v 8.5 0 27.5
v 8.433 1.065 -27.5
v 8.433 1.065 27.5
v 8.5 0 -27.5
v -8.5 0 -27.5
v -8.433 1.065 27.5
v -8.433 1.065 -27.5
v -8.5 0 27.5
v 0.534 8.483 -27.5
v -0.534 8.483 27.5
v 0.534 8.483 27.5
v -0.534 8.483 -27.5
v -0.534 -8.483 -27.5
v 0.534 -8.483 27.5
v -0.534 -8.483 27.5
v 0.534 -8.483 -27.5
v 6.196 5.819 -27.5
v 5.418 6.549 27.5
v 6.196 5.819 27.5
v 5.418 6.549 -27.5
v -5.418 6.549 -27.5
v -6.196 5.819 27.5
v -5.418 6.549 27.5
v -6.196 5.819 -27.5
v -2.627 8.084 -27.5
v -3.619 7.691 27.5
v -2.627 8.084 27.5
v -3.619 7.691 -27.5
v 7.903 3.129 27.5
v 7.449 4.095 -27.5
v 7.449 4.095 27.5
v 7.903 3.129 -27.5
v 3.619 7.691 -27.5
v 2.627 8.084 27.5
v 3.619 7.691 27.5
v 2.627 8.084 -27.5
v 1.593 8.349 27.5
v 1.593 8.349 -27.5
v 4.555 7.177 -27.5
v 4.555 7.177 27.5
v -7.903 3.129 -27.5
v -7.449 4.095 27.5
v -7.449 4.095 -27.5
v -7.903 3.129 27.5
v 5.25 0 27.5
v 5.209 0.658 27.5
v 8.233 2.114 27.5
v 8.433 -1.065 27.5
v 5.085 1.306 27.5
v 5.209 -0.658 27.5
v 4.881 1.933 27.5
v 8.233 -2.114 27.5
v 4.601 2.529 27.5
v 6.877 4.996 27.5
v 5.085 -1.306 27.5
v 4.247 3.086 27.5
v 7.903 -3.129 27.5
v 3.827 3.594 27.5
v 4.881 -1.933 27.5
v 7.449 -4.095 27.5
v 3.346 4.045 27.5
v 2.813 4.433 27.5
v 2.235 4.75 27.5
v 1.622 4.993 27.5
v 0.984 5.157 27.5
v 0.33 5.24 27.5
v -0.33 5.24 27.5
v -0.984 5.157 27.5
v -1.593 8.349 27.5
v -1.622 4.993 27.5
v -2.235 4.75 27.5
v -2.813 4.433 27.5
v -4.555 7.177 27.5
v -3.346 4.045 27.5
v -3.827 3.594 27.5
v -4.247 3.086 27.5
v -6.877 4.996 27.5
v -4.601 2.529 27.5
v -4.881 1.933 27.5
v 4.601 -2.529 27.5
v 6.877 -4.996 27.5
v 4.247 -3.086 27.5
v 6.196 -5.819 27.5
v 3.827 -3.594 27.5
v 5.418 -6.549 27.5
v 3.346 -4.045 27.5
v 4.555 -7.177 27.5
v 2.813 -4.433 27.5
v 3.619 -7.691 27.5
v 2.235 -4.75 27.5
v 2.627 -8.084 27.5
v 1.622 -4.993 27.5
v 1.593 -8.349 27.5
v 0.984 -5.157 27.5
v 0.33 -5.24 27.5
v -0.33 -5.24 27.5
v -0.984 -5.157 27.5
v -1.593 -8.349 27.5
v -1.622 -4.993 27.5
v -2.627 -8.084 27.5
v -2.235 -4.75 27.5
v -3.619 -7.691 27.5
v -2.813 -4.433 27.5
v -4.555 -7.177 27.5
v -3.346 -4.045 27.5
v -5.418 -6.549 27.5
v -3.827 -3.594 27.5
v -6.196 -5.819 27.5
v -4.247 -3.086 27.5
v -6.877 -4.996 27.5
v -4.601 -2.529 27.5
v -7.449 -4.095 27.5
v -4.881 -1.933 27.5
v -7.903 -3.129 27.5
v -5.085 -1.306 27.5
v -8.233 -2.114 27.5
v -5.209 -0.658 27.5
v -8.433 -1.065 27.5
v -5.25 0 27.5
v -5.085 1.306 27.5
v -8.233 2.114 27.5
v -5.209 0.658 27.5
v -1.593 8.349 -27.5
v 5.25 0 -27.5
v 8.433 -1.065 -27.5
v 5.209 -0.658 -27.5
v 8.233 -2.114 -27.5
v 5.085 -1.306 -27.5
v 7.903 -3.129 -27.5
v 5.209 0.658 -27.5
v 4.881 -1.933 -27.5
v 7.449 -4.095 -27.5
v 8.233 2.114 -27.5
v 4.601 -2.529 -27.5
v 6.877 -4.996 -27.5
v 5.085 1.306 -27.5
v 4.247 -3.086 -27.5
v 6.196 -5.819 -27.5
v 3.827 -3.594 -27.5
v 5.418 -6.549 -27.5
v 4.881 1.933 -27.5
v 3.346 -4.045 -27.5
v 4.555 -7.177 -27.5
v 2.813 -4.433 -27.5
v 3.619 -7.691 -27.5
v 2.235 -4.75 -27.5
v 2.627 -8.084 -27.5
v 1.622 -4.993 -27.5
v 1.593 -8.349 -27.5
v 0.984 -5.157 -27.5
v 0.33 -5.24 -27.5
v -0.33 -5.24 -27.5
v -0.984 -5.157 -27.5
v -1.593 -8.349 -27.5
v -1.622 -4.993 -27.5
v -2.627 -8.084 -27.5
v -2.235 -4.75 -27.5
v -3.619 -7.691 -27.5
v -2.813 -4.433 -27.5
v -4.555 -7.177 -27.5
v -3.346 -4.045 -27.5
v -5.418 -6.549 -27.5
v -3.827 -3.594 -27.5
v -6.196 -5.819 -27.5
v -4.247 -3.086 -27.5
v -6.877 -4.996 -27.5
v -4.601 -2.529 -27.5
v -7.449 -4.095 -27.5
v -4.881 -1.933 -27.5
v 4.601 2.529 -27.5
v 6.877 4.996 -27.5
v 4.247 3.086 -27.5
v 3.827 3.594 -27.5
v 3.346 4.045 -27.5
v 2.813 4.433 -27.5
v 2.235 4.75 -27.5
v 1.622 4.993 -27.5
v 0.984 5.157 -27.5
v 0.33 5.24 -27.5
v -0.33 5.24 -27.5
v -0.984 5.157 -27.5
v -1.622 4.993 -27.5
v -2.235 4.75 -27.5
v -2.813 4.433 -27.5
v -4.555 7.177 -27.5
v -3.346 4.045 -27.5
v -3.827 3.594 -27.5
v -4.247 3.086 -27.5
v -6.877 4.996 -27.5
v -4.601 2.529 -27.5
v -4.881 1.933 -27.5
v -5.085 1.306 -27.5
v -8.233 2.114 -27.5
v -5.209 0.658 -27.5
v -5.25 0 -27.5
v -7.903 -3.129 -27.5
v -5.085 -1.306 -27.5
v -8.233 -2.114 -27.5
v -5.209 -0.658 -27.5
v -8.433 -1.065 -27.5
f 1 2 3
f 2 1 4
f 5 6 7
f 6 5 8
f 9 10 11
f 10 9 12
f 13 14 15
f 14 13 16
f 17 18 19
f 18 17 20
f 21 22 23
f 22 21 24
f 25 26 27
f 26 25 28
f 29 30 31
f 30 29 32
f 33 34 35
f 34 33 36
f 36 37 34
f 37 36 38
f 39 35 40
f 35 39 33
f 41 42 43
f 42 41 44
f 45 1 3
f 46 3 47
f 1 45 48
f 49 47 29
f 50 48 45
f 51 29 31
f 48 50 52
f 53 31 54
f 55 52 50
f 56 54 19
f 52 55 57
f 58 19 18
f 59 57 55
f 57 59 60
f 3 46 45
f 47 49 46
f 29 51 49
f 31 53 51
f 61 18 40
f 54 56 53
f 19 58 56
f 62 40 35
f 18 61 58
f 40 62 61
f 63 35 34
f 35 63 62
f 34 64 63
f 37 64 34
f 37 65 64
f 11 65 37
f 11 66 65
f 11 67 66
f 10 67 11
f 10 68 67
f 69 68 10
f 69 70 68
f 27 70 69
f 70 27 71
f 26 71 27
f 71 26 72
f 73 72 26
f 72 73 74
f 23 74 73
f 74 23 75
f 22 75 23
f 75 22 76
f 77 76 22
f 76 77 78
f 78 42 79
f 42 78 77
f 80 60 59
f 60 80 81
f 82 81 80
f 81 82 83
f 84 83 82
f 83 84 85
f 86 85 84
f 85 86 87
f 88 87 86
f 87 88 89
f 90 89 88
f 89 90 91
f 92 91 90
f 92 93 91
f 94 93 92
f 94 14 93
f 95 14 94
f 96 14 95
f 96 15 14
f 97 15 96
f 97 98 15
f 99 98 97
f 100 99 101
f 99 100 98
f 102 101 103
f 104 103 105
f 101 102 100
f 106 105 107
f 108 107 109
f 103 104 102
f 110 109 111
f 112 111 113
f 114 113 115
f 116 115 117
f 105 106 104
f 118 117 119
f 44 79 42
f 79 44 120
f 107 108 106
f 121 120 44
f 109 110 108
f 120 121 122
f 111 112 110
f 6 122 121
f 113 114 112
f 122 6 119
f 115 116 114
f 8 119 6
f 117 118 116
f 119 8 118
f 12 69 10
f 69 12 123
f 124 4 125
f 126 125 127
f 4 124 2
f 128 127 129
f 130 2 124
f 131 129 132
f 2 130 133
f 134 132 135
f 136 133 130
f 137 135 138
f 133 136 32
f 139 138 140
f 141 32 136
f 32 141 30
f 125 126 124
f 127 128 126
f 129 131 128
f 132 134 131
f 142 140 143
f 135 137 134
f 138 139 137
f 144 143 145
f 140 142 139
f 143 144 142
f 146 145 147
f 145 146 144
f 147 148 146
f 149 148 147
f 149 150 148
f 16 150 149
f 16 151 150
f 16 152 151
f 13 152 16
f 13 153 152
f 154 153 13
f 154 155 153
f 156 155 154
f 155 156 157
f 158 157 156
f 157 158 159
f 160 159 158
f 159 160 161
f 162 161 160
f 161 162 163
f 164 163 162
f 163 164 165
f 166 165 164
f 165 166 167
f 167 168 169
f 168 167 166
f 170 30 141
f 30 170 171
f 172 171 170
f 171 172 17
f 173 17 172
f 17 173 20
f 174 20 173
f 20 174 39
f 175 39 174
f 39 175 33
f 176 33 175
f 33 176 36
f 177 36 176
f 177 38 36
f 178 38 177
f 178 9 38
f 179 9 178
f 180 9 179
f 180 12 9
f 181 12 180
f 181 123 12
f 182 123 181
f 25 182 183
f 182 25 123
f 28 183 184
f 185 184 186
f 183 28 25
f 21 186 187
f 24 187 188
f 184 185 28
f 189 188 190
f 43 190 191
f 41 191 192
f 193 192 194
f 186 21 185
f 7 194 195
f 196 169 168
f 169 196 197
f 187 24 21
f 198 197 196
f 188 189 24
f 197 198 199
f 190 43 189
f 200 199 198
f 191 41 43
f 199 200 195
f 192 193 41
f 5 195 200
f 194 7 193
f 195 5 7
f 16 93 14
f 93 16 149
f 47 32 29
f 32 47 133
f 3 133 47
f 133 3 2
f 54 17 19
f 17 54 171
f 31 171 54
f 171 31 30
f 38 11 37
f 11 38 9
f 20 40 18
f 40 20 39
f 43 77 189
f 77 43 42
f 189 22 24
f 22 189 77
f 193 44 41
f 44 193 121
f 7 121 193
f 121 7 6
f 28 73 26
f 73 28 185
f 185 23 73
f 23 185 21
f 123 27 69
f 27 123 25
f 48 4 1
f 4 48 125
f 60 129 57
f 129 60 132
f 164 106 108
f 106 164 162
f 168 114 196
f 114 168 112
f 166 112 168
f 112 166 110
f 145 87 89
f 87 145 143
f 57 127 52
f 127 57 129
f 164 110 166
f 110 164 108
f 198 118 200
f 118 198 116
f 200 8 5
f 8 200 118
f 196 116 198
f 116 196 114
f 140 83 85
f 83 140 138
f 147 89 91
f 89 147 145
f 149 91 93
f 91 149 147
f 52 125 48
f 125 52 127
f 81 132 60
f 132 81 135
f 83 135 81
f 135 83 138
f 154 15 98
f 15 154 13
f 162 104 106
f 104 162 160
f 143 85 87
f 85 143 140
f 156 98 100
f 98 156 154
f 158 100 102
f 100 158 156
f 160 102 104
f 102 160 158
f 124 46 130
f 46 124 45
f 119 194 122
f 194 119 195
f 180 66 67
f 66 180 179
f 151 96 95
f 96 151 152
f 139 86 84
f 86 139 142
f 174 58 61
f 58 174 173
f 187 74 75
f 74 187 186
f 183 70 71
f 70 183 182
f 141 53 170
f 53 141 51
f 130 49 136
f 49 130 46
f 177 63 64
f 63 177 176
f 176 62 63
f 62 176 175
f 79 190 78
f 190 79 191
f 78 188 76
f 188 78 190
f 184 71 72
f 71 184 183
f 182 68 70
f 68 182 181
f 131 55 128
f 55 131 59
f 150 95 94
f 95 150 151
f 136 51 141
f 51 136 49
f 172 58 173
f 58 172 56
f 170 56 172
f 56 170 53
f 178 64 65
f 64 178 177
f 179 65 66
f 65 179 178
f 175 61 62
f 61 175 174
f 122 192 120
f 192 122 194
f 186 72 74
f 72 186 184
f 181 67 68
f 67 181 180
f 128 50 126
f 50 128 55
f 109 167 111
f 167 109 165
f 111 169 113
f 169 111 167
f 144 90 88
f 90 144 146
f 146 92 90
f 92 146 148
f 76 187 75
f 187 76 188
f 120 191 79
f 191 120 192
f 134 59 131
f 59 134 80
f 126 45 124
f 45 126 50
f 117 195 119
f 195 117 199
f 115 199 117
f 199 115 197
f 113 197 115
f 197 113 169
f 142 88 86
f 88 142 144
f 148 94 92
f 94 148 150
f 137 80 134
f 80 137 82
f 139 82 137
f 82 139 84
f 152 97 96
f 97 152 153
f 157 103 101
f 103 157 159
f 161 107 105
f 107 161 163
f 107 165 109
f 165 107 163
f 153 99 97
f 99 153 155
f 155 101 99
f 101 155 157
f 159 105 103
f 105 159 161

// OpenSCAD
$fn = 50;


difference() {
	union() {
		translate(v = [0, 0, -27.5000000000]) {
			cylinder(h = 55, r = 8.5000000000);
		}
	}
	union() {
		translate(v = [0, 0, -100.0000000000]) {
			cylinder(h = 200, r = 5.2500000000);
		}
	}
}
